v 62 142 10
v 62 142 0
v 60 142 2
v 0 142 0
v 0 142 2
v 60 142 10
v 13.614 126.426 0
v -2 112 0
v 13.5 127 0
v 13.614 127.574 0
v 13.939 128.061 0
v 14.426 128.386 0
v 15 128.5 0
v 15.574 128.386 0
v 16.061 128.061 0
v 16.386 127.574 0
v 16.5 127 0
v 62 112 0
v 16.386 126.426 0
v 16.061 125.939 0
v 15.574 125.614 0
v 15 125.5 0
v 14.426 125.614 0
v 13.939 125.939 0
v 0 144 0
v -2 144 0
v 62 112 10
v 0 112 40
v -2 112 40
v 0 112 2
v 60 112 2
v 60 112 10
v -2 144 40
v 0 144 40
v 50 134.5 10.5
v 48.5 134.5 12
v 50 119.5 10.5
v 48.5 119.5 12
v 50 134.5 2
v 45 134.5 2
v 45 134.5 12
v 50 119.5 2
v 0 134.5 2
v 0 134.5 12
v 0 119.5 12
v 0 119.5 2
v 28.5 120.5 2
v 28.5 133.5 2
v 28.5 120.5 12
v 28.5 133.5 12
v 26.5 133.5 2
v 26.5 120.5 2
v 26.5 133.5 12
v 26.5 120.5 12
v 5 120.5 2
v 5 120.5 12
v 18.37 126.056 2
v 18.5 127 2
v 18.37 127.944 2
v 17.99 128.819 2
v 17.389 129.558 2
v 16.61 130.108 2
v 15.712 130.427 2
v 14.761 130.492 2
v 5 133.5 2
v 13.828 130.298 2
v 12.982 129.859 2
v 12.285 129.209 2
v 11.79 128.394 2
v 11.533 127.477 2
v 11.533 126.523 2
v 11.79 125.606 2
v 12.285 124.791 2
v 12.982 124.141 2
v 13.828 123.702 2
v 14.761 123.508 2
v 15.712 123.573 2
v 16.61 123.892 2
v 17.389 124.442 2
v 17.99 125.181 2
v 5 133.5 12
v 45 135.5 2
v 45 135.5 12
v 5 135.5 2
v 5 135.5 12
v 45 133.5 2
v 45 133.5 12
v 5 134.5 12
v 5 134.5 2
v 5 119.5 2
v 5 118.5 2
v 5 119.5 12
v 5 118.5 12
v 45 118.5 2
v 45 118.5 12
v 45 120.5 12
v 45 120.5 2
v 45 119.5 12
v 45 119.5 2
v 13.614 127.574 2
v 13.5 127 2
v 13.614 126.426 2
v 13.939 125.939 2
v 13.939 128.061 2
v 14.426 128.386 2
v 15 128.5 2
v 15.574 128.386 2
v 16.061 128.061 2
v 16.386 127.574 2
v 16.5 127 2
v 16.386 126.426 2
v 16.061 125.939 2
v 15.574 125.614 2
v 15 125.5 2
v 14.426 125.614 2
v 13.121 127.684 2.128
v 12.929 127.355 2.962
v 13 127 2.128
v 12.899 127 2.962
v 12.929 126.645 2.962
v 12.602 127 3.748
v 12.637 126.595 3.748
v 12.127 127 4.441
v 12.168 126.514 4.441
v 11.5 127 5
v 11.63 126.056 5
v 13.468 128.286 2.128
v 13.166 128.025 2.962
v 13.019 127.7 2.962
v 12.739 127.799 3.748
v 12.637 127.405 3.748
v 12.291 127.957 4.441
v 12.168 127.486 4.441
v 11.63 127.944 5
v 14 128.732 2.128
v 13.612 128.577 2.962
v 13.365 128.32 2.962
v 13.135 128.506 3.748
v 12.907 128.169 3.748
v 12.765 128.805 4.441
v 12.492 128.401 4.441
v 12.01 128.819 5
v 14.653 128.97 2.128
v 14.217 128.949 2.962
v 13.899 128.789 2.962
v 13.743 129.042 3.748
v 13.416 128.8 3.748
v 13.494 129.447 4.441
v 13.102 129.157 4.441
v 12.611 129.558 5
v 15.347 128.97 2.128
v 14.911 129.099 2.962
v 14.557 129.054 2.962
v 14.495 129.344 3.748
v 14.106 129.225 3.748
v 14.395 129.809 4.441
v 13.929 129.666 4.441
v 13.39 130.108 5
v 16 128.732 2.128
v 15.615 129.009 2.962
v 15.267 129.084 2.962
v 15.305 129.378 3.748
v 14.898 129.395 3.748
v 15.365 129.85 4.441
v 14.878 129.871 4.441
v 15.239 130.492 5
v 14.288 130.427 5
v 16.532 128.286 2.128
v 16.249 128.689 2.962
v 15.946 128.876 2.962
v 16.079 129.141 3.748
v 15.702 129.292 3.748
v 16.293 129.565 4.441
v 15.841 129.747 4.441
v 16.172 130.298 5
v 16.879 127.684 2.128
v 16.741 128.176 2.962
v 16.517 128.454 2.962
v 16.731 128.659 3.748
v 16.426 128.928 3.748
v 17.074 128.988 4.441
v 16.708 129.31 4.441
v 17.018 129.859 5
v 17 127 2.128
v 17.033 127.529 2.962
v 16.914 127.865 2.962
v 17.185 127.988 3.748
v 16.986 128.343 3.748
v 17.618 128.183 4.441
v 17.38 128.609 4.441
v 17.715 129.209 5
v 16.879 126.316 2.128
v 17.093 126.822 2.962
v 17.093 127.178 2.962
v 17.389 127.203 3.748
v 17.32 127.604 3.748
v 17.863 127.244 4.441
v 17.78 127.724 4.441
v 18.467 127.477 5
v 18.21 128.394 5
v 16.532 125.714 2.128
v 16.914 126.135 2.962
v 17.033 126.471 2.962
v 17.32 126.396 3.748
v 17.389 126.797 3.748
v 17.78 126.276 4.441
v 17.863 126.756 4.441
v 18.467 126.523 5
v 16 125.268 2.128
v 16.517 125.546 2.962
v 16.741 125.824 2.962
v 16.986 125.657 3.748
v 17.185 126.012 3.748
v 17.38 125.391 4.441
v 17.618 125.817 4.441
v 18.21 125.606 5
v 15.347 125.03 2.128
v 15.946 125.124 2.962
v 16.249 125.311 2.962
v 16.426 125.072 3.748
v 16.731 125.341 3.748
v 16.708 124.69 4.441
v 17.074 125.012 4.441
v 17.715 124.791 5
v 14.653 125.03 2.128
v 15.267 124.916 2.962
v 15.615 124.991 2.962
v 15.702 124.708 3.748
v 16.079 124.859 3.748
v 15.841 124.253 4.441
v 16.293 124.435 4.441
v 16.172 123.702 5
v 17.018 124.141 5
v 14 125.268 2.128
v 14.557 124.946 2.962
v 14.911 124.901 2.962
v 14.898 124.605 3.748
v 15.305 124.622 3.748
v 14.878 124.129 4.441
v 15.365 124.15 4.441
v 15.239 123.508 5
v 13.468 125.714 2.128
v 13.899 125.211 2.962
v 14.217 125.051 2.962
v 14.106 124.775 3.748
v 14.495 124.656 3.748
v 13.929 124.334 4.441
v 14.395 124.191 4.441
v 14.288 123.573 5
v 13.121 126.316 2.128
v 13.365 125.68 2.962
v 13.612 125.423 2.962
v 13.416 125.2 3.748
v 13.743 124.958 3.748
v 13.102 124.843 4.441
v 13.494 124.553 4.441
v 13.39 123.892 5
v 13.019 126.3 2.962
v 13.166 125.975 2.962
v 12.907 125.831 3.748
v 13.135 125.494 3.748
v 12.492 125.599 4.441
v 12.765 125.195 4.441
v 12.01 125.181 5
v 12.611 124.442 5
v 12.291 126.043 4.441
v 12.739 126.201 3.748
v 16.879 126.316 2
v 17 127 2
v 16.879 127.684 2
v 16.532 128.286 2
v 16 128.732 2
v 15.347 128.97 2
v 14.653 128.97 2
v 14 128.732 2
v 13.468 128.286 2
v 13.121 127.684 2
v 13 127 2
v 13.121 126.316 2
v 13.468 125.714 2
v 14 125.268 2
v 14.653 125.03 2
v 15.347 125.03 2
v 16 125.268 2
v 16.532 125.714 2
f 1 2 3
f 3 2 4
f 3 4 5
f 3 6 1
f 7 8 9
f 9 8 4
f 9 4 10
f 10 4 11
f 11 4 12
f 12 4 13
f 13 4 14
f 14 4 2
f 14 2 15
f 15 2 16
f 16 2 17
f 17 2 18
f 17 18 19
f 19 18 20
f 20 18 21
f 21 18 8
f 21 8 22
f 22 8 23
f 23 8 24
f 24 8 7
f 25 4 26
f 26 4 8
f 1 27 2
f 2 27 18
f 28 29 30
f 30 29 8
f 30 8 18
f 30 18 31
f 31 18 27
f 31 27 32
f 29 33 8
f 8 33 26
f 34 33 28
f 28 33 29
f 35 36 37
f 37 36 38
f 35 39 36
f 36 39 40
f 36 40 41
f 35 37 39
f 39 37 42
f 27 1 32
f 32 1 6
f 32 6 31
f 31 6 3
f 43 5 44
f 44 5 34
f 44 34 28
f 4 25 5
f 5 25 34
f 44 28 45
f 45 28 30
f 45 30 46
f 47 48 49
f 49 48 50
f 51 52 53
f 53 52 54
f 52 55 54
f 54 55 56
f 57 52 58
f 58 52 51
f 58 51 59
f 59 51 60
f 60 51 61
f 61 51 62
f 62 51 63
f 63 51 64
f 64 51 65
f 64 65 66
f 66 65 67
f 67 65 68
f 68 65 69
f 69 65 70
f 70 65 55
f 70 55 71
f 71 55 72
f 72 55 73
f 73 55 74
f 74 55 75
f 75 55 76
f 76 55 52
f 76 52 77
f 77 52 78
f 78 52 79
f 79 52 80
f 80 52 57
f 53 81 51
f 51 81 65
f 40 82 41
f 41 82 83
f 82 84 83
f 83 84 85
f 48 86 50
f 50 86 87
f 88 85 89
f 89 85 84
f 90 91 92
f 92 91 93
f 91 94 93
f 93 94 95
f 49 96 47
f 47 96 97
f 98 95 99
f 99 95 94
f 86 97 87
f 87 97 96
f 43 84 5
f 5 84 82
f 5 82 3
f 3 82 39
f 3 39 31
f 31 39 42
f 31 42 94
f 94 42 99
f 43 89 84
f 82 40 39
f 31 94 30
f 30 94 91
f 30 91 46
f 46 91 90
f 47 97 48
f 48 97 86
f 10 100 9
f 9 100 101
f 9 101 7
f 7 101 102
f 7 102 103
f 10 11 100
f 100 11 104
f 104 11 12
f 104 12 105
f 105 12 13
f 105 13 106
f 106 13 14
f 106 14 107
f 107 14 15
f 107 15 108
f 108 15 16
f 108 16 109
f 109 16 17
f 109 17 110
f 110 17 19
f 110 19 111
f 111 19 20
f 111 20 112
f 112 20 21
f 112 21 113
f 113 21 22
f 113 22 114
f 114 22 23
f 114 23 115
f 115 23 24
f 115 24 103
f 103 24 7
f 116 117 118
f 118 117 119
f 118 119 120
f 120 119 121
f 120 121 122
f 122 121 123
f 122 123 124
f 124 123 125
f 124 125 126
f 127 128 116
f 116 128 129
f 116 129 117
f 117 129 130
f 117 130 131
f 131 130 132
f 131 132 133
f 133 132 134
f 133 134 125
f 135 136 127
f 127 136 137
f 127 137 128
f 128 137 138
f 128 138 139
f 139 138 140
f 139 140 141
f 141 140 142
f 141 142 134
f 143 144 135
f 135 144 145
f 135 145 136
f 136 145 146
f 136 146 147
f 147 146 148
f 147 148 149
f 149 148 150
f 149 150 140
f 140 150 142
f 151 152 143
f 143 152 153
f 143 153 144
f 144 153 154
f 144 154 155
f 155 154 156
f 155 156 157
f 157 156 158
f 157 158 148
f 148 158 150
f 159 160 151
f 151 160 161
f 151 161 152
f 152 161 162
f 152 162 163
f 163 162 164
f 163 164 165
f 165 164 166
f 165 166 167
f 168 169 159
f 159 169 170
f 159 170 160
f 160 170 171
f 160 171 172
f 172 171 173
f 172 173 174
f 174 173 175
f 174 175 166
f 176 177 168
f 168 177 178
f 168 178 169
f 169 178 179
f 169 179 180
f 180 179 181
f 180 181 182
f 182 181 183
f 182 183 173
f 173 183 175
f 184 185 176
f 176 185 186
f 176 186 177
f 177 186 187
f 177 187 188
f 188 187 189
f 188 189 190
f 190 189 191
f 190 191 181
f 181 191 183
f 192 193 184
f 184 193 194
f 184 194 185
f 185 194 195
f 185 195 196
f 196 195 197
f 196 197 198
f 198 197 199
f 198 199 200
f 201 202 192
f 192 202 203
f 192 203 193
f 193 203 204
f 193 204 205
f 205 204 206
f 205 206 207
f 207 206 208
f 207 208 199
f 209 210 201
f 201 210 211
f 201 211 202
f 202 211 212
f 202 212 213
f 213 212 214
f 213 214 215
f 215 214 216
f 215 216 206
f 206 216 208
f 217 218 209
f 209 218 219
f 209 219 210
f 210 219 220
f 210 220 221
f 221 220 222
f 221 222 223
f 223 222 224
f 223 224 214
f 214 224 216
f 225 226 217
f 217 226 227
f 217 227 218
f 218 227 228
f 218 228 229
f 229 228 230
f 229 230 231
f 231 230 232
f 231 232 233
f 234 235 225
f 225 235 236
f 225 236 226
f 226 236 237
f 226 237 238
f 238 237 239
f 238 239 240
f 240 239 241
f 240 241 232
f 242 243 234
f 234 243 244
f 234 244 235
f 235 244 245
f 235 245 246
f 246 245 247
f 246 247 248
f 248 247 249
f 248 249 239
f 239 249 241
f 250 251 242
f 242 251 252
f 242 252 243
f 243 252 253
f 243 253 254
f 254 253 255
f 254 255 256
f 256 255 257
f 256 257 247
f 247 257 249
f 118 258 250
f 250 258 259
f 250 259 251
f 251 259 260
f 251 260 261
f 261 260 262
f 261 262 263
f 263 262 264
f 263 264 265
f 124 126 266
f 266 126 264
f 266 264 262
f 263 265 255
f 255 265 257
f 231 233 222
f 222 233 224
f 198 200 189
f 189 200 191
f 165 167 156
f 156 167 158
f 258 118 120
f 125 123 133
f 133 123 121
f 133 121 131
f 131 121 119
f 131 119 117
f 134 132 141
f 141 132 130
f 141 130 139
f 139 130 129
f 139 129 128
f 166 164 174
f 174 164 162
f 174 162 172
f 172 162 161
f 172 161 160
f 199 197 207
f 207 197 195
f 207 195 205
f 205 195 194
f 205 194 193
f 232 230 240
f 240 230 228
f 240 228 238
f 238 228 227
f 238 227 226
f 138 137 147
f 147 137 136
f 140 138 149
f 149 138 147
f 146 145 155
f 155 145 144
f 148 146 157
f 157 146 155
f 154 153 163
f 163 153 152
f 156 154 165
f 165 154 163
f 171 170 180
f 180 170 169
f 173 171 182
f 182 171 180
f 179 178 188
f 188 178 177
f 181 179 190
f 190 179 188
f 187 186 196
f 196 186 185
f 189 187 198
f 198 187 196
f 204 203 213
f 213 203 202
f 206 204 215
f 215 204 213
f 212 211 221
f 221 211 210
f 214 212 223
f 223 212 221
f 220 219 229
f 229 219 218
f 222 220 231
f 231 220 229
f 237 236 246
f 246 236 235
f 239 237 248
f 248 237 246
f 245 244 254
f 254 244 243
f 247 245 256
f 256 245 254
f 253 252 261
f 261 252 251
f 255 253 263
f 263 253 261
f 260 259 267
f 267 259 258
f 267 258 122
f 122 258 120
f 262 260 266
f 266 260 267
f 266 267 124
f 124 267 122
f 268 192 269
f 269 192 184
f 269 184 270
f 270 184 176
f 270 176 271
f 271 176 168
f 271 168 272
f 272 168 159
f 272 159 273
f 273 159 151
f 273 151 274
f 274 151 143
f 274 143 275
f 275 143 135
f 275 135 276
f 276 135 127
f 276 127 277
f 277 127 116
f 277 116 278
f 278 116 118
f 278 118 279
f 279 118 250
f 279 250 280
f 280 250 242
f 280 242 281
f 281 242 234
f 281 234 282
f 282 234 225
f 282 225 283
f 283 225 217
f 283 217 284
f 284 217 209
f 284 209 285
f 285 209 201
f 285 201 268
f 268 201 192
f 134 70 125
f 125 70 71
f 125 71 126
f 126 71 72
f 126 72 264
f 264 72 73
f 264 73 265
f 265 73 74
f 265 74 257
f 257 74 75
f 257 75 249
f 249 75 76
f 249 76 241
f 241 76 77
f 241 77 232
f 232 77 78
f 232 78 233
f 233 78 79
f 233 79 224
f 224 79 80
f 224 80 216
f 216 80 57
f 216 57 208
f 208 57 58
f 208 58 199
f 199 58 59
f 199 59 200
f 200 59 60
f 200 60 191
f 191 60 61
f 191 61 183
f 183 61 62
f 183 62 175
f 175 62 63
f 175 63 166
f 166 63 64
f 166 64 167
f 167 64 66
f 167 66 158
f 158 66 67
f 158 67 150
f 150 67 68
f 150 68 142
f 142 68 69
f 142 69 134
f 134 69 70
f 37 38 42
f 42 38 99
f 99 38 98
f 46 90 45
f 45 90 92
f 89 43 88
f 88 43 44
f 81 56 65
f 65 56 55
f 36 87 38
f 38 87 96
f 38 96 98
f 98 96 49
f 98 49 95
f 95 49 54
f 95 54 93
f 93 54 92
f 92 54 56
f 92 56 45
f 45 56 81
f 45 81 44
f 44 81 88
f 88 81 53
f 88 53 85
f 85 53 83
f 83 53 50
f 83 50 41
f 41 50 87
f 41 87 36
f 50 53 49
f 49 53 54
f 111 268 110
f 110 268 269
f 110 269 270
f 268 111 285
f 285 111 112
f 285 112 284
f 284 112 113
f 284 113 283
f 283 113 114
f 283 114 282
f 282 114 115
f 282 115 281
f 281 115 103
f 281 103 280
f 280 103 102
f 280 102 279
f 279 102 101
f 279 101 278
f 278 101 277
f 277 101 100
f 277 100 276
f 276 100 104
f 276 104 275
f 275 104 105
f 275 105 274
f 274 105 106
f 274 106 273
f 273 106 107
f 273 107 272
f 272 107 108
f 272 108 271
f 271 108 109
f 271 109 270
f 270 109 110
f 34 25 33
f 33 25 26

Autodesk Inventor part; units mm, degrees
ref_plane "YZ Plane" through (0, 0, 0) normal (1, 0, 0) x (0, 1, 0)
ref_plane "XZ Plane" through (0, 0, 0) normal (0, 1, 0) x (-1, 0, 0)
ref_plane "XY Plane" through (0, 0, 0) normal (0, 0, 1) x (1, 0, 0)
sketch "Esboço1" plane through (0, 0, 0) normal (0, 0, 1) x (1, 0, 0)
  line L0 (0, 0) -> (60, 0)
  line L1 (60, 0) -> (60, 110)
  line L2 (60, 110) -> (0, 110)
  line L3 (0, 110) -> (0, 0)
  line L4 (62, 112) -> (62, -2)
  line L5 (62, -2) -> (-2, -2)
  line L6 (-2, -2) -> (-2, 112)
  line L7 (-2, 112) -> (62, 112)
  dimension "d0" = 60
  dimension "d1" = 110
  dimension "d2" = 2
extrude "Extrusão1" add sketch "Esboço1" along normal blind 2 contours L3 L2 L1 L0 | L4 L5 L6 L7
sketch "Esboço2" plane through (0, 0, 2) normal (0, 0, 1) x (1, 0, 0)
  line L0 (62, 112) -> (-2, 112) projected
  line L1 (-2, 112) -> (-2, -2) projected
  line L2 (62, -2) -> (62, 112) projected
  line L3 (-2, -2) -> (62, -2) projected
  line L4 (0, 0) -> (0, 110)
  line L5 (0, 110) -> (60, 110)
  line L6 (60, 110) -> (60, 0)
  line L7 (60, 0) -> (0, 0)
  point P0 (0, 0)
  dimension "d5" = 2
extrude "Extrusão2" add sketch "Esboço2" along normal blind 38
sketch "Esboço3" plane through (-2, -2, 0) normal (0, -1, 0) x (1, 0, 0)
  line L0 (32, 5) -> (42, 5)
  line L1 (42, 5) -> (42, 15)
  line L2 (42, 15) -> (32, 15)
  line L3 (32, 15) -> (32, 5)
  line L4 (0, 0) -> (64, 0) projected
  line L5 (64, 0) -> (64, 40) projected
  point P0 (2, 0)
  dimension "d8" = 10
  dimension "d9" = 10
  dimension "d10" = 5
  dimension "d11" = 22
extrude "Extrusão3" cut sketch "Esboço3" against normal blind 38
sketch "Esboço11" plane through (-2, 112, 0) normal (0, 1, 0) x (1, 0, 0)
  line L0 (64, 0) -> (64, -40) projected
  line L1 (0, 0) -> (64, 0)
  line L2 (64, 0) -> (64, -2)
  line L3 (64, -2) -> (0, -2)
  line L4 (0, -2) -> (0, 0)
  line L5 (64, 0) -> (0, 0) projected
  point P0 (2, 0)
  dimension "d45" = 2
  dimension "d46" = 0
  dimension "d47" = 64
extrude "Extrusão8" add sketch "Esboço11" along normal blind 32
sketch "Esboço12" plane through (-2, 112, 2) normal (0, 0, 1) x (1, 0, 0)
  line L0 (2, 7.5) -> (7, 7.5)
  line L1 (7, 7.5) -> (7, 22.5)
  line L2 (7, 22.5) -> (2, 22.5)
  line L3 (2, 22.5) -> (2, 7.5)
  line L4 (52, 7.5) -> (47, 7.5)
  line L5 (47, 7.5) -> (47, 22.5)
  line L6 (47, 22.5) -> (52, 22.5)
  line L7 (52, 22.5) -> (52, 7.5)
  line L8 (64, 0) -> (0, 0) projected
  line L9 (0, 0) -> (0, 32) projected
  point P0 (2, -112)
  dimension "d50" = 5
  dimension "d51" = 15
  dimension "d52" = 5
  dimension "d53" = 15
  dimension "d54" = 7.5
  dimension "d55" = 7.5
  dimension "d56" = 40
  dimension "d57" = 2
extrude "Extrusão9" add sketch "Esboço12" along normal blind 10
sketch "Esboço13" plane through (-2, 112, 2) normal (0, 0, 1) x (1, 0, 0)
  circle A0 centre (17, 15) radius 1.5
  circle A1 centre (17, 15) radius 2
  circle A2 centre (17, 15) radius 3.5
  line L0 (7, 7.5) -> (7, 22.5) projected
  line L1 (0, 32) -> (64, 32) projected
  point P0 (2, -112)
  dimension "d60" = 3
  dimension "d61" = 4
  dimension "d62" = 7
  dimension "d69" = 10
  dimension "d70" = 17
extrude "Extrusão10" add sketch "Esboço13" along normal blind 3 contours A2
fillet "Arredondamento1" radius 3.5 1 edges at (13, 127, 5)
sketch "Esboço14" plane through (15, 127, 2) normal (0, 0, 1) x (1, 0, 0)
  circle A0 centre (0, 0) radius 1.5
  point P0 (-15, -127)
  dimension "d66" = 3
extrude "Extrusão11" cut sketch "Esboço14" against normal blind 3
sketch "Esboço16" plane through (-2, 112, 2) normal (0, 0, 1) x (1, 0, 0)
  line L0 (47, 22.5) -> (47, 7.5) projected
  line L1 (7, 6.5) -> (47, 6.5)
  line L2 (47, 6.5) -> (47, 8.5)
  line L3 (47, 8.5) -> (7, 8.5)
  line L4 (7, 8.5) -> (7, 6.5)
  line L5 (7, 7.5) -> (7, 22.5) projected
  line L6 (47, 23.5) -> (7, 23.5)
  line L7 (7, 23.5) -> (7, 21.5)
  line L8 (7, 21.5) -> (47, 21.5)
  line L9 (47, 21.5) -> (47, 23.5)
  circle A0 centre (17, 15) radius 1.5 projected
  point P0 (2, -112)
  point P1 (47, 21.5)
  dimension "d77" = 2
  dimension "d78" = 2
  dimension "d79" = 13
  dimension "d80" = 6.5
  dimension "d81" = 40
extrude "Extrusão13" add sketch "Esboço16" along normal blind 10 contours L0 L8 L5 L7 L6 L9 | L0 L2 L1 L4 L3
sketch "Esboço17" plane through (5, 133.5, 2) normal (0, 0, 1) x (1, 0, 0)
  line L0 (0, 0) -> (40, 0) projected
  line L1 (23.5, 0) -> (21.5, 0)
  line L2 (21.5, 0) -> (21.5, -13)
  line L3 (21.5, -13) -> (23.5, -13)
  line L4 (23.5, -13) -> (23.5, 0)
  line L5 (40, -13) -> (0, -13) projected
  circle A0 centre (10, -6.5) radius 1.5 projected
  point P0 (-5, -133.5)
  point P1 (21.5, 0)
  dimension "d84" = 0
  dimension "d85" = 2
  dimension "d86" = 10
extrude "Extrusão14" add sketch "Esboço17" along normal blind 10 contours L0 L4 L3 L2
sketch "Esboço18" plane through (-2, 112, 2) normal (0, 0, 1) x (1, 0, 0)
  line L0 (30.5, 21.5) -> (30.5, 8.5) projected
  line L1 (30.5, 8.5) -> (47, 8.5) projected
  line L2 (47, 8.5) -> (47, 21.5) projected
  line L3 (47, 21.5) -> (30.5, 21.5) projected
  line L4 (28.5, 8.5) -> (28.5, 21.5) projected
  line L5 (28.5, 21.5) -> (7, 21.5) projected
  line L6 (7, 21.5) -> (7, 8.5) projected
  line L7 (7, 8.5) -> (28.5, 8.5) projected
  circle A0 centre (17, 15) radius 1.5 projected
  circle A1 centre (17, 15) radius 2 projected
  circle A2 centre (17, 15) radius 3.5 projected
  line L8 (52, 22.5) -> (52, 7.5) projected
  line L9 (52, 7.5) -> (47, 7.5) projected
  line L10 (47, 7.5) -> (47, 6.5) projected
  line L11 (47, 6.5) -> (7, 6.5) projected
  line L12 (7, 6.5) -> (7, 7.5) projected
  line L13 (7, 7.5) -> (2, 7.5) projected
  line L14 (2, 7.5) -> (2, 22.5) projected
  line L15 (2, 22.5) -> (7, 22.5) projected
  line L16 (7, 22.5) -> (7, 23.5) projected
  line L17 (7, 23.5) -> (47, 23.5) projected
  line L18 (47, 23.5) -> (47, 22.5) projected
  line L19 (47, 22.5) -> (52, 22.5) projected
  line L20 (0, 0) -> (64, 0) projected
  line L21 (64, 32) -> (64, 0) projected
  line L22 (0, 32) -> (64, 32) projected
  line L23 (0, 0) -> (0, 32) projected
  line L24 (0, -114) -> (0, 0) projected
  line L25 (64, -114) -> (0, -114) projected
  line L26 (64, 0) -> (64, -114) projected
  line L27 (2, -112) -> (62, -112) projected
  line L28 (62, -112) -> (62, -2) projected
  line L29 (62, -2) -> (2, -2) projected
  line L30 (2, -2) -> (2, -112) projected
  line L31 (62, 0) -> (62, 30)
  line L32 (62, 30) -> (2, 30)
  line L33 (2, 30) -> (2, 0)
  point P0 (2, 7.5)
  dimension "d89" = 2
extrude "Extrusão15" add sketch "Esboço18" along normal blind 38 contours L14 L33 L20 L23 L22 L21 L31 L32
sketch "Esboço19" plane through (62, -2, 40) normal (1, 0, 0) x (0, 0, -1)
  line L0 (30, 144) -> (0, 144)
  line L1 (0, 144) -> (0, 114)
  line L2 (0, 114) -> (30, 114)
  line L3 (30, 114) -> (30, 144)
  line L4 (40, 0) -> (40, 146) projected
  line L5 (40, 146) -> (0, 146) projected
  line L6 (0, 0) -> (0, 146) projected
  point P0 (40, 2)
  dimension "d92" = 10
  dimension "d93" = 2
  dimension "d94" = 0
  dimension "d95" = 30
extrude "Extrusão16" cut sketch "Esboço19" against normal blind 2
chamfer "Chanfro1" distance 1.5 angle 45 1 edges at (50, 127, 12)
sketch "Esboço20" plane through (-2, -2, 0) normal (-1, 0, 0) x (0, 0, 1)
  line L0 (25, 86) -> (15, 86)
  line L1 (15, 86) -> (15, 96)
  line L2 (15, 96) -> (25, 96)
  line L3 (25, 96) -> (25, 86)
  line L4 (0, 146) -> (40, 146) projected
  line L5 (0, 146) -> (0, 0) projected
  point P0 (0, 2)
  dimension "d101" = 10
  dimension "d102" = 10
  dimension "d103" = 50
  dimension "d104" = 15
extrude "Extrusão17" cut sketch "Esboço20" against normal blind 2
sketch "Esboço21" plane through (0, 0, 2) normal (0, 0, 1) x (1, 0, 0)
  point P0 (0, 0)
sketch "Esboço22" plane through (0, 0, 2) normal (0, 0, 1) x (1, 0, 0)
  line L0 (110.309, -33.0792) -> (-25.5735, -33.0792)
  line L1 (-25.5735, -33.0792) -> (-25.5735, 112)
  line L2 (-25.5735, 112) -> (110.309, 112)
  line L3 (110.309, 112) -> (110.309, -33.0792)
  line L4 (62, 112) -> (0, 112) projected
  point P0 (0, 0)
  dimension "d107" = 0
extrude "Extrusão18" cut sketch "Esboço22" along normal mid plane 100
sketch "Esboço23" plane through (50, 119.5, 2) normal (0, 0, 1) x (1, 0, 0)
  line L0 (12, 24.5) -> (-52, 24.5) projected
  line L1 (12, 22.5) -> (-50, 22.5)
  line L2 (-50, 22.5) -> (-50, 24.5)
  line L3 (-50, 24.5) -> (12, 24.5)
  line L4 (12, 24.5) -> (12, 22.5)
  point P0 (-50, -119.5)
extrude "Extrusão19" cut sketch "Esboço23" along normal mid plane 100
properties part number "basecaixa"
